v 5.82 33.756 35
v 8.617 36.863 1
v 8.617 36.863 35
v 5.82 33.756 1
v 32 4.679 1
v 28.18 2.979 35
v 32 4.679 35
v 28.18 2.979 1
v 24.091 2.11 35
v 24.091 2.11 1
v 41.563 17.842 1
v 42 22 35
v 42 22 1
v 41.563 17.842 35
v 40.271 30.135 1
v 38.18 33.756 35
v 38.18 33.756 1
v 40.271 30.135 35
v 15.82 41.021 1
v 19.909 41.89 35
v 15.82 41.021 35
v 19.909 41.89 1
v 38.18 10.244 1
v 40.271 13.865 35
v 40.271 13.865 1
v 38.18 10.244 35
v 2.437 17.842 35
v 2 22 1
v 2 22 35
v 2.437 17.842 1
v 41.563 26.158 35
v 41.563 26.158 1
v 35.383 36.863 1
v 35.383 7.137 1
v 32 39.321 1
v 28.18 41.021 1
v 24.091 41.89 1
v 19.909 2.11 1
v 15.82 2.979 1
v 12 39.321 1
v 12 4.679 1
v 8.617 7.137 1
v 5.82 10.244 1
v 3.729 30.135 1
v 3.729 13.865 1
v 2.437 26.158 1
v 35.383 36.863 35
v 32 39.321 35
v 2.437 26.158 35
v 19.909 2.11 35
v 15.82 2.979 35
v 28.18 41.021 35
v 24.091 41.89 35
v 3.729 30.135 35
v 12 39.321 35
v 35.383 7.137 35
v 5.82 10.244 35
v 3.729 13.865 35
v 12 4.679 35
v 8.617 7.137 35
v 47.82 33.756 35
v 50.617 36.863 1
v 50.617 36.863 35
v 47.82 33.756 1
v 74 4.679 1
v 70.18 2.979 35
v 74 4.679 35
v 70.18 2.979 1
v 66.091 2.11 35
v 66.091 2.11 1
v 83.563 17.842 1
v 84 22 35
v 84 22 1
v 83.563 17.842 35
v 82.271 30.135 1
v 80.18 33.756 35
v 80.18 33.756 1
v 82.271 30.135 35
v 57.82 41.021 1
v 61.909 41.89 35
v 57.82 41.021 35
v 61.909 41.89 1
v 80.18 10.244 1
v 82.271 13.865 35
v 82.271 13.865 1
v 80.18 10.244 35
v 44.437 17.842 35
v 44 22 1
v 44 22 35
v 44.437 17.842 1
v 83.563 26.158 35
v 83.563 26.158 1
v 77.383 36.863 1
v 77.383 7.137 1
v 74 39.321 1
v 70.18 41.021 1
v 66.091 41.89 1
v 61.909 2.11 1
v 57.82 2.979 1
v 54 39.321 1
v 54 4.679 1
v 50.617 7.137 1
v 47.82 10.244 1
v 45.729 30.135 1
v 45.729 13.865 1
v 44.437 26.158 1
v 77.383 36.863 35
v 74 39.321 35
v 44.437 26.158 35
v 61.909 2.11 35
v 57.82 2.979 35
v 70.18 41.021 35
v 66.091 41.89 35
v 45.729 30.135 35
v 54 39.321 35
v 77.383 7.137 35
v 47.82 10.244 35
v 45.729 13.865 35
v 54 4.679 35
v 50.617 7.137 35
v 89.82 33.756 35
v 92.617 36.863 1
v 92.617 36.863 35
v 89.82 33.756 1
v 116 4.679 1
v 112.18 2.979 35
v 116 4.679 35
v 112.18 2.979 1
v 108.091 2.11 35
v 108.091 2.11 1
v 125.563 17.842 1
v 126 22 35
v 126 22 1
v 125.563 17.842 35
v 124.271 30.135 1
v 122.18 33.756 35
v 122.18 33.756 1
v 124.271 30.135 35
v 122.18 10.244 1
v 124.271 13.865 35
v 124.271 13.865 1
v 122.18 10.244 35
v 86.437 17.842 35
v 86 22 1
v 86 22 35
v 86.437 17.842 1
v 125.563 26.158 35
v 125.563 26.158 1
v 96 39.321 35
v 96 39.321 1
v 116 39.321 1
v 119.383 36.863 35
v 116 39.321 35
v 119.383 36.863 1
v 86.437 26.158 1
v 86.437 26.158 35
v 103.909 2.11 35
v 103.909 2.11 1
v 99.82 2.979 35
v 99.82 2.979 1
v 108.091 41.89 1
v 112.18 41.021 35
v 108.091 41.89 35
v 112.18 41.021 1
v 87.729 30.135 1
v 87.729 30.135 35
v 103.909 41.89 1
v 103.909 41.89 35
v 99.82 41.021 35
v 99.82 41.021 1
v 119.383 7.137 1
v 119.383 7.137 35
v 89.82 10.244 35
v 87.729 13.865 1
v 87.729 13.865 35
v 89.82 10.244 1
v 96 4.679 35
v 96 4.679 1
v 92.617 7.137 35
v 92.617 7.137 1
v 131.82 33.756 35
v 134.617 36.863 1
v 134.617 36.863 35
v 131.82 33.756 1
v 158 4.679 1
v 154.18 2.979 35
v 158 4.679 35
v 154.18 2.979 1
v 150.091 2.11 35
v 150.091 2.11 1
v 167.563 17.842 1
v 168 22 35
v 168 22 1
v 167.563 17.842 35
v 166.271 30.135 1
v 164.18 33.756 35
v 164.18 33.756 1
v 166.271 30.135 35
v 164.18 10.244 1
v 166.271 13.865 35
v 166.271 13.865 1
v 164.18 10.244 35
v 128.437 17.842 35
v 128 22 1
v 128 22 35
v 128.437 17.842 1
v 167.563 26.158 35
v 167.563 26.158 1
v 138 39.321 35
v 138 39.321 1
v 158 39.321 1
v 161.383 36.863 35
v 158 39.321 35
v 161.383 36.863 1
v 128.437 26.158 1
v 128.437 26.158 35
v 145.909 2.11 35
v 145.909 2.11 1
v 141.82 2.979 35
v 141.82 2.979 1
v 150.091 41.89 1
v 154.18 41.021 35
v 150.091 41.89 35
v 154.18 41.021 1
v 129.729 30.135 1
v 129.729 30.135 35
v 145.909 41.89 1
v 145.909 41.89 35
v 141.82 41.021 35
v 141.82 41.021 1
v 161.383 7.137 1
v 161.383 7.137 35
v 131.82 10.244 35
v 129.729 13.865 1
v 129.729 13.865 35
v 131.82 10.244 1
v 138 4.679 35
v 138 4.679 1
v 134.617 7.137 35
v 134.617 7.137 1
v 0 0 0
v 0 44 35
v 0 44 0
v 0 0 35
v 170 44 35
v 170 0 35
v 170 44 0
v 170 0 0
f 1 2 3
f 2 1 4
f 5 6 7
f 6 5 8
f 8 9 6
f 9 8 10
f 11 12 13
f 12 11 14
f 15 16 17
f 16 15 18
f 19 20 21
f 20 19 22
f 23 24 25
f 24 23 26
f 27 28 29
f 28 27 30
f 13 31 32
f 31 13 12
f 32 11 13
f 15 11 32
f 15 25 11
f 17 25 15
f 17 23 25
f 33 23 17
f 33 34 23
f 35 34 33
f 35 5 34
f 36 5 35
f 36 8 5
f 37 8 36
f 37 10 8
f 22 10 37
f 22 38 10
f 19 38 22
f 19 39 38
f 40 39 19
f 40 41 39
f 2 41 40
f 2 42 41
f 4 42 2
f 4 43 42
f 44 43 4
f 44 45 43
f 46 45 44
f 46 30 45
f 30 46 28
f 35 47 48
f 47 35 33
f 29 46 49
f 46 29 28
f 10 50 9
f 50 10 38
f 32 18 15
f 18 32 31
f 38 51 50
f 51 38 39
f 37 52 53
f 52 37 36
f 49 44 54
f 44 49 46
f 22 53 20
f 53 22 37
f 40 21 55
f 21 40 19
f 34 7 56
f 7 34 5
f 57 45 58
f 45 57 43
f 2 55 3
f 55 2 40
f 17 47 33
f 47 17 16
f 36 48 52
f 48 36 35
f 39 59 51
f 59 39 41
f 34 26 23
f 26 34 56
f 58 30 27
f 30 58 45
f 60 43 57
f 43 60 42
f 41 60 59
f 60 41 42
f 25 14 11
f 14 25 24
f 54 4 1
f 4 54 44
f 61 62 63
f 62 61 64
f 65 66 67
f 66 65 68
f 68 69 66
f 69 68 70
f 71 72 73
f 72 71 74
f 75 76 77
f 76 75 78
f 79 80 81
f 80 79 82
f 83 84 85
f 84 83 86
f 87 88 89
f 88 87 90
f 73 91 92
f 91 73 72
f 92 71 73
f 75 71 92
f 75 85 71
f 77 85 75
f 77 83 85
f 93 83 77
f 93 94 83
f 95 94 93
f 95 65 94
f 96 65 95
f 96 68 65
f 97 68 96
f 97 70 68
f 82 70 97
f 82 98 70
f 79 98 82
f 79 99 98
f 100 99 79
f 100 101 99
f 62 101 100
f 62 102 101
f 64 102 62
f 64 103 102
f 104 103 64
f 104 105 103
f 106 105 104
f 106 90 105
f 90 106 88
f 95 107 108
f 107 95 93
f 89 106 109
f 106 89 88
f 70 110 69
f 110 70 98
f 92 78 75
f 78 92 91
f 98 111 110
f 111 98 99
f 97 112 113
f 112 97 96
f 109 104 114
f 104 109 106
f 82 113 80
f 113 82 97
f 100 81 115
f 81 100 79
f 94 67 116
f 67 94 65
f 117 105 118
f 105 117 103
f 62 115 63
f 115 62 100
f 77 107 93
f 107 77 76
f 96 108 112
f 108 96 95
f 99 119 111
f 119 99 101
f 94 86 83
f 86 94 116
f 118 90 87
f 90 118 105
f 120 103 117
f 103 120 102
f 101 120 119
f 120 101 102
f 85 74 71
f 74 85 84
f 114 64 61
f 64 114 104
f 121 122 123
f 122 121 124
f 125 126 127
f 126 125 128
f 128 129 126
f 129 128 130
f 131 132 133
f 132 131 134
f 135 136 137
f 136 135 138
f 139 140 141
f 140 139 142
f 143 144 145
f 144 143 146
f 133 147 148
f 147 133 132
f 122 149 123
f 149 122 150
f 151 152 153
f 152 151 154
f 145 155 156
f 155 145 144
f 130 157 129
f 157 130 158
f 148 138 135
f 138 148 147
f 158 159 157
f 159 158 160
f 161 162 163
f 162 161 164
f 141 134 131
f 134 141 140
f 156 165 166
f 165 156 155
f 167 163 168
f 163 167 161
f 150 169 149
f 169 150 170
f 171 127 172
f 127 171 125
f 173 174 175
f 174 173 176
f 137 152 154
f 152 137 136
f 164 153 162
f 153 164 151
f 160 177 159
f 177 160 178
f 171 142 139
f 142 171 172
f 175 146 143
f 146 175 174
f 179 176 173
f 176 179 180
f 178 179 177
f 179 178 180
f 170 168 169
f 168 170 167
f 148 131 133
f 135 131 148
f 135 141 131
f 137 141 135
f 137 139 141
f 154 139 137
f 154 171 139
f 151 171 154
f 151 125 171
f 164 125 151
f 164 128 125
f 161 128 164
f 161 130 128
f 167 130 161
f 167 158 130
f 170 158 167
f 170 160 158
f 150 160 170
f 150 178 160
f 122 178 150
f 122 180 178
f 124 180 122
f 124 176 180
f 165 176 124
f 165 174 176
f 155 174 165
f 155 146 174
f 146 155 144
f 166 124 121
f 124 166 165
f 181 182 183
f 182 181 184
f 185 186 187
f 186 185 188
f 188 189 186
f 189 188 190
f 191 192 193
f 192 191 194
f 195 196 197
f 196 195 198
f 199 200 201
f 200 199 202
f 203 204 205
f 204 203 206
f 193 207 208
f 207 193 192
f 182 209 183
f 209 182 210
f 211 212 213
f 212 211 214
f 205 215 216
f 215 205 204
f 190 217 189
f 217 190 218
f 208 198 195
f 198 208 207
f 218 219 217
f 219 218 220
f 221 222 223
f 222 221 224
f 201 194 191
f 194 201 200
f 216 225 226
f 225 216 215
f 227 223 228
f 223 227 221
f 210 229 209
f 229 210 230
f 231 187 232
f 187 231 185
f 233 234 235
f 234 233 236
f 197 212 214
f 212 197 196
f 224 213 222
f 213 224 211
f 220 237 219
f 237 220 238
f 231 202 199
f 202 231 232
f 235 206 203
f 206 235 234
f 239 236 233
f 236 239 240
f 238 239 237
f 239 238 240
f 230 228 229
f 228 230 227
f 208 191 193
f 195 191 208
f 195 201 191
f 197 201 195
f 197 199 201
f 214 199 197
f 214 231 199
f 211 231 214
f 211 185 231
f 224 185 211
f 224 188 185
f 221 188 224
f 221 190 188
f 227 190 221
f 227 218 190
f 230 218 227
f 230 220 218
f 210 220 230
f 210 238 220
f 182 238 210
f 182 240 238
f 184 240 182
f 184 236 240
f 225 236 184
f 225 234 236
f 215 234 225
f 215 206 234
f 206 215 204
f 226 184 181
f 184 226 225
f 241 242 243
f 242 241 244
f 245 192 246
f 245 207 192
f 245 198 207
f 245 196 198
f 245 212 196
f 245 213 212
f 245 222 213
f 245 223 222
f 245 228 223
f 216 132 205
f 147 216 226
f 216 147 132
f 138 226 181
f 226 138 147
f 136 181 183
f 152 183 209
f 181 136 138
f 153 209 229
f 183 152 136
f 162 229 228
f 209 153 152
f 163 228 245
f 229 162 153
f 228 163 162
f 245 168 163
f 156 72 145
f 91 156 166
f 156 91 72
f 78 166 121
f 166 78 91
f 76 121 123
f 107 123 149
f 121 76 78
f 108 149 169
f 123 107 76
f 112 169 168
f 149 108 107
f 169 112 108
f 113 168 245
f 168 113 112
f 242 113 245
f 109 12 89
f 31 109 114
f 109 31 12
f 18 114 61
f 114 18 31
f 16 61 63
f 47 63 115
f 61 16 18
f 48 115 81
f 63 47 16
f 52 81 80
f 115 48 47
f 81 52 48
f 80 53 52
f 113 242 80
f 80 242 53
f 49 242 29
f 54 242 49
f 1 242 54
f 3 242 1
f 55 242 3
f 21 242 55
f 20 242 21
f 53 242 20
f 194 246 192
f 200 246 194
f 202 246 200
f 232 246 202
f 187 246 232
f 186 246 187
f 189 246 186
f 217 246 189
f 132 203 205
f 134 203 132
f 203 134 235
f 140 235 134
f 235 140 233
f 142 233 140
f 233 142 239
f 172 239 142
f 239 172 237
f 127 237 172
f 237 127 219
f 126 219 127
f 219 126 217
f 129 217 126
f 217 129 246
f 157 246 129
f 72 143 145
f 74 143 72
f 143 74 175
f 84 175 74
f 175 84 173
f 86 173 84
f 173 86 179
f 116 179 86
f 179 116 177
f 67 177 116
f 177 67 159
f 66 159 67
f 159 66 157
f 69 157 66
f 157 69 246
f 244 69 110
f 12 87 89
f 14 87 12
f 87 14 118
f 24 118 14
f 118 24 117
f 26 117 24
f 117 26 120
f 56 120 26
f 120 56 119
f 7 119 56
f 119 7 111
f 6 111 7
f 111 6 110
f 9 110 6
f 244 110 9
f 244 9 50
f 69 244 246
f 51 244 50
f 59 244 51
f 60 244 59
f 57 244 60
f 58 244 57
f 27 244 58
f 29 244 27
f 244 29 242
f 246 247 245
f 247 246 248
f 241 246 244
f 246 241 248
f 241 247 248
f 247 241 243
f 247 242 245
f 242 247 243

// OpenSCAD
N=4;

BD=40;
GAP=2;

WW=BD+2*GAP;
LL=(GAP+BD)*N+GAP;
HH=35;


module squeeze_bottle_holder() {
  difference() {
    hull() {
      cube([LL,WW,HH]);
    }
    for (i=[0:N-1]) {
      translate([BD/2+GAP+(GAP+BD)*i,BD/2+GAP,1]) cylinder(HH+3,d=BD);
    }
  }
}


module double() {
  translate([0,WW-GAP,0]) squeeze_bottle_holder();
  squeeze_bottle_holder();
}

squeeze_bottle_holder();
